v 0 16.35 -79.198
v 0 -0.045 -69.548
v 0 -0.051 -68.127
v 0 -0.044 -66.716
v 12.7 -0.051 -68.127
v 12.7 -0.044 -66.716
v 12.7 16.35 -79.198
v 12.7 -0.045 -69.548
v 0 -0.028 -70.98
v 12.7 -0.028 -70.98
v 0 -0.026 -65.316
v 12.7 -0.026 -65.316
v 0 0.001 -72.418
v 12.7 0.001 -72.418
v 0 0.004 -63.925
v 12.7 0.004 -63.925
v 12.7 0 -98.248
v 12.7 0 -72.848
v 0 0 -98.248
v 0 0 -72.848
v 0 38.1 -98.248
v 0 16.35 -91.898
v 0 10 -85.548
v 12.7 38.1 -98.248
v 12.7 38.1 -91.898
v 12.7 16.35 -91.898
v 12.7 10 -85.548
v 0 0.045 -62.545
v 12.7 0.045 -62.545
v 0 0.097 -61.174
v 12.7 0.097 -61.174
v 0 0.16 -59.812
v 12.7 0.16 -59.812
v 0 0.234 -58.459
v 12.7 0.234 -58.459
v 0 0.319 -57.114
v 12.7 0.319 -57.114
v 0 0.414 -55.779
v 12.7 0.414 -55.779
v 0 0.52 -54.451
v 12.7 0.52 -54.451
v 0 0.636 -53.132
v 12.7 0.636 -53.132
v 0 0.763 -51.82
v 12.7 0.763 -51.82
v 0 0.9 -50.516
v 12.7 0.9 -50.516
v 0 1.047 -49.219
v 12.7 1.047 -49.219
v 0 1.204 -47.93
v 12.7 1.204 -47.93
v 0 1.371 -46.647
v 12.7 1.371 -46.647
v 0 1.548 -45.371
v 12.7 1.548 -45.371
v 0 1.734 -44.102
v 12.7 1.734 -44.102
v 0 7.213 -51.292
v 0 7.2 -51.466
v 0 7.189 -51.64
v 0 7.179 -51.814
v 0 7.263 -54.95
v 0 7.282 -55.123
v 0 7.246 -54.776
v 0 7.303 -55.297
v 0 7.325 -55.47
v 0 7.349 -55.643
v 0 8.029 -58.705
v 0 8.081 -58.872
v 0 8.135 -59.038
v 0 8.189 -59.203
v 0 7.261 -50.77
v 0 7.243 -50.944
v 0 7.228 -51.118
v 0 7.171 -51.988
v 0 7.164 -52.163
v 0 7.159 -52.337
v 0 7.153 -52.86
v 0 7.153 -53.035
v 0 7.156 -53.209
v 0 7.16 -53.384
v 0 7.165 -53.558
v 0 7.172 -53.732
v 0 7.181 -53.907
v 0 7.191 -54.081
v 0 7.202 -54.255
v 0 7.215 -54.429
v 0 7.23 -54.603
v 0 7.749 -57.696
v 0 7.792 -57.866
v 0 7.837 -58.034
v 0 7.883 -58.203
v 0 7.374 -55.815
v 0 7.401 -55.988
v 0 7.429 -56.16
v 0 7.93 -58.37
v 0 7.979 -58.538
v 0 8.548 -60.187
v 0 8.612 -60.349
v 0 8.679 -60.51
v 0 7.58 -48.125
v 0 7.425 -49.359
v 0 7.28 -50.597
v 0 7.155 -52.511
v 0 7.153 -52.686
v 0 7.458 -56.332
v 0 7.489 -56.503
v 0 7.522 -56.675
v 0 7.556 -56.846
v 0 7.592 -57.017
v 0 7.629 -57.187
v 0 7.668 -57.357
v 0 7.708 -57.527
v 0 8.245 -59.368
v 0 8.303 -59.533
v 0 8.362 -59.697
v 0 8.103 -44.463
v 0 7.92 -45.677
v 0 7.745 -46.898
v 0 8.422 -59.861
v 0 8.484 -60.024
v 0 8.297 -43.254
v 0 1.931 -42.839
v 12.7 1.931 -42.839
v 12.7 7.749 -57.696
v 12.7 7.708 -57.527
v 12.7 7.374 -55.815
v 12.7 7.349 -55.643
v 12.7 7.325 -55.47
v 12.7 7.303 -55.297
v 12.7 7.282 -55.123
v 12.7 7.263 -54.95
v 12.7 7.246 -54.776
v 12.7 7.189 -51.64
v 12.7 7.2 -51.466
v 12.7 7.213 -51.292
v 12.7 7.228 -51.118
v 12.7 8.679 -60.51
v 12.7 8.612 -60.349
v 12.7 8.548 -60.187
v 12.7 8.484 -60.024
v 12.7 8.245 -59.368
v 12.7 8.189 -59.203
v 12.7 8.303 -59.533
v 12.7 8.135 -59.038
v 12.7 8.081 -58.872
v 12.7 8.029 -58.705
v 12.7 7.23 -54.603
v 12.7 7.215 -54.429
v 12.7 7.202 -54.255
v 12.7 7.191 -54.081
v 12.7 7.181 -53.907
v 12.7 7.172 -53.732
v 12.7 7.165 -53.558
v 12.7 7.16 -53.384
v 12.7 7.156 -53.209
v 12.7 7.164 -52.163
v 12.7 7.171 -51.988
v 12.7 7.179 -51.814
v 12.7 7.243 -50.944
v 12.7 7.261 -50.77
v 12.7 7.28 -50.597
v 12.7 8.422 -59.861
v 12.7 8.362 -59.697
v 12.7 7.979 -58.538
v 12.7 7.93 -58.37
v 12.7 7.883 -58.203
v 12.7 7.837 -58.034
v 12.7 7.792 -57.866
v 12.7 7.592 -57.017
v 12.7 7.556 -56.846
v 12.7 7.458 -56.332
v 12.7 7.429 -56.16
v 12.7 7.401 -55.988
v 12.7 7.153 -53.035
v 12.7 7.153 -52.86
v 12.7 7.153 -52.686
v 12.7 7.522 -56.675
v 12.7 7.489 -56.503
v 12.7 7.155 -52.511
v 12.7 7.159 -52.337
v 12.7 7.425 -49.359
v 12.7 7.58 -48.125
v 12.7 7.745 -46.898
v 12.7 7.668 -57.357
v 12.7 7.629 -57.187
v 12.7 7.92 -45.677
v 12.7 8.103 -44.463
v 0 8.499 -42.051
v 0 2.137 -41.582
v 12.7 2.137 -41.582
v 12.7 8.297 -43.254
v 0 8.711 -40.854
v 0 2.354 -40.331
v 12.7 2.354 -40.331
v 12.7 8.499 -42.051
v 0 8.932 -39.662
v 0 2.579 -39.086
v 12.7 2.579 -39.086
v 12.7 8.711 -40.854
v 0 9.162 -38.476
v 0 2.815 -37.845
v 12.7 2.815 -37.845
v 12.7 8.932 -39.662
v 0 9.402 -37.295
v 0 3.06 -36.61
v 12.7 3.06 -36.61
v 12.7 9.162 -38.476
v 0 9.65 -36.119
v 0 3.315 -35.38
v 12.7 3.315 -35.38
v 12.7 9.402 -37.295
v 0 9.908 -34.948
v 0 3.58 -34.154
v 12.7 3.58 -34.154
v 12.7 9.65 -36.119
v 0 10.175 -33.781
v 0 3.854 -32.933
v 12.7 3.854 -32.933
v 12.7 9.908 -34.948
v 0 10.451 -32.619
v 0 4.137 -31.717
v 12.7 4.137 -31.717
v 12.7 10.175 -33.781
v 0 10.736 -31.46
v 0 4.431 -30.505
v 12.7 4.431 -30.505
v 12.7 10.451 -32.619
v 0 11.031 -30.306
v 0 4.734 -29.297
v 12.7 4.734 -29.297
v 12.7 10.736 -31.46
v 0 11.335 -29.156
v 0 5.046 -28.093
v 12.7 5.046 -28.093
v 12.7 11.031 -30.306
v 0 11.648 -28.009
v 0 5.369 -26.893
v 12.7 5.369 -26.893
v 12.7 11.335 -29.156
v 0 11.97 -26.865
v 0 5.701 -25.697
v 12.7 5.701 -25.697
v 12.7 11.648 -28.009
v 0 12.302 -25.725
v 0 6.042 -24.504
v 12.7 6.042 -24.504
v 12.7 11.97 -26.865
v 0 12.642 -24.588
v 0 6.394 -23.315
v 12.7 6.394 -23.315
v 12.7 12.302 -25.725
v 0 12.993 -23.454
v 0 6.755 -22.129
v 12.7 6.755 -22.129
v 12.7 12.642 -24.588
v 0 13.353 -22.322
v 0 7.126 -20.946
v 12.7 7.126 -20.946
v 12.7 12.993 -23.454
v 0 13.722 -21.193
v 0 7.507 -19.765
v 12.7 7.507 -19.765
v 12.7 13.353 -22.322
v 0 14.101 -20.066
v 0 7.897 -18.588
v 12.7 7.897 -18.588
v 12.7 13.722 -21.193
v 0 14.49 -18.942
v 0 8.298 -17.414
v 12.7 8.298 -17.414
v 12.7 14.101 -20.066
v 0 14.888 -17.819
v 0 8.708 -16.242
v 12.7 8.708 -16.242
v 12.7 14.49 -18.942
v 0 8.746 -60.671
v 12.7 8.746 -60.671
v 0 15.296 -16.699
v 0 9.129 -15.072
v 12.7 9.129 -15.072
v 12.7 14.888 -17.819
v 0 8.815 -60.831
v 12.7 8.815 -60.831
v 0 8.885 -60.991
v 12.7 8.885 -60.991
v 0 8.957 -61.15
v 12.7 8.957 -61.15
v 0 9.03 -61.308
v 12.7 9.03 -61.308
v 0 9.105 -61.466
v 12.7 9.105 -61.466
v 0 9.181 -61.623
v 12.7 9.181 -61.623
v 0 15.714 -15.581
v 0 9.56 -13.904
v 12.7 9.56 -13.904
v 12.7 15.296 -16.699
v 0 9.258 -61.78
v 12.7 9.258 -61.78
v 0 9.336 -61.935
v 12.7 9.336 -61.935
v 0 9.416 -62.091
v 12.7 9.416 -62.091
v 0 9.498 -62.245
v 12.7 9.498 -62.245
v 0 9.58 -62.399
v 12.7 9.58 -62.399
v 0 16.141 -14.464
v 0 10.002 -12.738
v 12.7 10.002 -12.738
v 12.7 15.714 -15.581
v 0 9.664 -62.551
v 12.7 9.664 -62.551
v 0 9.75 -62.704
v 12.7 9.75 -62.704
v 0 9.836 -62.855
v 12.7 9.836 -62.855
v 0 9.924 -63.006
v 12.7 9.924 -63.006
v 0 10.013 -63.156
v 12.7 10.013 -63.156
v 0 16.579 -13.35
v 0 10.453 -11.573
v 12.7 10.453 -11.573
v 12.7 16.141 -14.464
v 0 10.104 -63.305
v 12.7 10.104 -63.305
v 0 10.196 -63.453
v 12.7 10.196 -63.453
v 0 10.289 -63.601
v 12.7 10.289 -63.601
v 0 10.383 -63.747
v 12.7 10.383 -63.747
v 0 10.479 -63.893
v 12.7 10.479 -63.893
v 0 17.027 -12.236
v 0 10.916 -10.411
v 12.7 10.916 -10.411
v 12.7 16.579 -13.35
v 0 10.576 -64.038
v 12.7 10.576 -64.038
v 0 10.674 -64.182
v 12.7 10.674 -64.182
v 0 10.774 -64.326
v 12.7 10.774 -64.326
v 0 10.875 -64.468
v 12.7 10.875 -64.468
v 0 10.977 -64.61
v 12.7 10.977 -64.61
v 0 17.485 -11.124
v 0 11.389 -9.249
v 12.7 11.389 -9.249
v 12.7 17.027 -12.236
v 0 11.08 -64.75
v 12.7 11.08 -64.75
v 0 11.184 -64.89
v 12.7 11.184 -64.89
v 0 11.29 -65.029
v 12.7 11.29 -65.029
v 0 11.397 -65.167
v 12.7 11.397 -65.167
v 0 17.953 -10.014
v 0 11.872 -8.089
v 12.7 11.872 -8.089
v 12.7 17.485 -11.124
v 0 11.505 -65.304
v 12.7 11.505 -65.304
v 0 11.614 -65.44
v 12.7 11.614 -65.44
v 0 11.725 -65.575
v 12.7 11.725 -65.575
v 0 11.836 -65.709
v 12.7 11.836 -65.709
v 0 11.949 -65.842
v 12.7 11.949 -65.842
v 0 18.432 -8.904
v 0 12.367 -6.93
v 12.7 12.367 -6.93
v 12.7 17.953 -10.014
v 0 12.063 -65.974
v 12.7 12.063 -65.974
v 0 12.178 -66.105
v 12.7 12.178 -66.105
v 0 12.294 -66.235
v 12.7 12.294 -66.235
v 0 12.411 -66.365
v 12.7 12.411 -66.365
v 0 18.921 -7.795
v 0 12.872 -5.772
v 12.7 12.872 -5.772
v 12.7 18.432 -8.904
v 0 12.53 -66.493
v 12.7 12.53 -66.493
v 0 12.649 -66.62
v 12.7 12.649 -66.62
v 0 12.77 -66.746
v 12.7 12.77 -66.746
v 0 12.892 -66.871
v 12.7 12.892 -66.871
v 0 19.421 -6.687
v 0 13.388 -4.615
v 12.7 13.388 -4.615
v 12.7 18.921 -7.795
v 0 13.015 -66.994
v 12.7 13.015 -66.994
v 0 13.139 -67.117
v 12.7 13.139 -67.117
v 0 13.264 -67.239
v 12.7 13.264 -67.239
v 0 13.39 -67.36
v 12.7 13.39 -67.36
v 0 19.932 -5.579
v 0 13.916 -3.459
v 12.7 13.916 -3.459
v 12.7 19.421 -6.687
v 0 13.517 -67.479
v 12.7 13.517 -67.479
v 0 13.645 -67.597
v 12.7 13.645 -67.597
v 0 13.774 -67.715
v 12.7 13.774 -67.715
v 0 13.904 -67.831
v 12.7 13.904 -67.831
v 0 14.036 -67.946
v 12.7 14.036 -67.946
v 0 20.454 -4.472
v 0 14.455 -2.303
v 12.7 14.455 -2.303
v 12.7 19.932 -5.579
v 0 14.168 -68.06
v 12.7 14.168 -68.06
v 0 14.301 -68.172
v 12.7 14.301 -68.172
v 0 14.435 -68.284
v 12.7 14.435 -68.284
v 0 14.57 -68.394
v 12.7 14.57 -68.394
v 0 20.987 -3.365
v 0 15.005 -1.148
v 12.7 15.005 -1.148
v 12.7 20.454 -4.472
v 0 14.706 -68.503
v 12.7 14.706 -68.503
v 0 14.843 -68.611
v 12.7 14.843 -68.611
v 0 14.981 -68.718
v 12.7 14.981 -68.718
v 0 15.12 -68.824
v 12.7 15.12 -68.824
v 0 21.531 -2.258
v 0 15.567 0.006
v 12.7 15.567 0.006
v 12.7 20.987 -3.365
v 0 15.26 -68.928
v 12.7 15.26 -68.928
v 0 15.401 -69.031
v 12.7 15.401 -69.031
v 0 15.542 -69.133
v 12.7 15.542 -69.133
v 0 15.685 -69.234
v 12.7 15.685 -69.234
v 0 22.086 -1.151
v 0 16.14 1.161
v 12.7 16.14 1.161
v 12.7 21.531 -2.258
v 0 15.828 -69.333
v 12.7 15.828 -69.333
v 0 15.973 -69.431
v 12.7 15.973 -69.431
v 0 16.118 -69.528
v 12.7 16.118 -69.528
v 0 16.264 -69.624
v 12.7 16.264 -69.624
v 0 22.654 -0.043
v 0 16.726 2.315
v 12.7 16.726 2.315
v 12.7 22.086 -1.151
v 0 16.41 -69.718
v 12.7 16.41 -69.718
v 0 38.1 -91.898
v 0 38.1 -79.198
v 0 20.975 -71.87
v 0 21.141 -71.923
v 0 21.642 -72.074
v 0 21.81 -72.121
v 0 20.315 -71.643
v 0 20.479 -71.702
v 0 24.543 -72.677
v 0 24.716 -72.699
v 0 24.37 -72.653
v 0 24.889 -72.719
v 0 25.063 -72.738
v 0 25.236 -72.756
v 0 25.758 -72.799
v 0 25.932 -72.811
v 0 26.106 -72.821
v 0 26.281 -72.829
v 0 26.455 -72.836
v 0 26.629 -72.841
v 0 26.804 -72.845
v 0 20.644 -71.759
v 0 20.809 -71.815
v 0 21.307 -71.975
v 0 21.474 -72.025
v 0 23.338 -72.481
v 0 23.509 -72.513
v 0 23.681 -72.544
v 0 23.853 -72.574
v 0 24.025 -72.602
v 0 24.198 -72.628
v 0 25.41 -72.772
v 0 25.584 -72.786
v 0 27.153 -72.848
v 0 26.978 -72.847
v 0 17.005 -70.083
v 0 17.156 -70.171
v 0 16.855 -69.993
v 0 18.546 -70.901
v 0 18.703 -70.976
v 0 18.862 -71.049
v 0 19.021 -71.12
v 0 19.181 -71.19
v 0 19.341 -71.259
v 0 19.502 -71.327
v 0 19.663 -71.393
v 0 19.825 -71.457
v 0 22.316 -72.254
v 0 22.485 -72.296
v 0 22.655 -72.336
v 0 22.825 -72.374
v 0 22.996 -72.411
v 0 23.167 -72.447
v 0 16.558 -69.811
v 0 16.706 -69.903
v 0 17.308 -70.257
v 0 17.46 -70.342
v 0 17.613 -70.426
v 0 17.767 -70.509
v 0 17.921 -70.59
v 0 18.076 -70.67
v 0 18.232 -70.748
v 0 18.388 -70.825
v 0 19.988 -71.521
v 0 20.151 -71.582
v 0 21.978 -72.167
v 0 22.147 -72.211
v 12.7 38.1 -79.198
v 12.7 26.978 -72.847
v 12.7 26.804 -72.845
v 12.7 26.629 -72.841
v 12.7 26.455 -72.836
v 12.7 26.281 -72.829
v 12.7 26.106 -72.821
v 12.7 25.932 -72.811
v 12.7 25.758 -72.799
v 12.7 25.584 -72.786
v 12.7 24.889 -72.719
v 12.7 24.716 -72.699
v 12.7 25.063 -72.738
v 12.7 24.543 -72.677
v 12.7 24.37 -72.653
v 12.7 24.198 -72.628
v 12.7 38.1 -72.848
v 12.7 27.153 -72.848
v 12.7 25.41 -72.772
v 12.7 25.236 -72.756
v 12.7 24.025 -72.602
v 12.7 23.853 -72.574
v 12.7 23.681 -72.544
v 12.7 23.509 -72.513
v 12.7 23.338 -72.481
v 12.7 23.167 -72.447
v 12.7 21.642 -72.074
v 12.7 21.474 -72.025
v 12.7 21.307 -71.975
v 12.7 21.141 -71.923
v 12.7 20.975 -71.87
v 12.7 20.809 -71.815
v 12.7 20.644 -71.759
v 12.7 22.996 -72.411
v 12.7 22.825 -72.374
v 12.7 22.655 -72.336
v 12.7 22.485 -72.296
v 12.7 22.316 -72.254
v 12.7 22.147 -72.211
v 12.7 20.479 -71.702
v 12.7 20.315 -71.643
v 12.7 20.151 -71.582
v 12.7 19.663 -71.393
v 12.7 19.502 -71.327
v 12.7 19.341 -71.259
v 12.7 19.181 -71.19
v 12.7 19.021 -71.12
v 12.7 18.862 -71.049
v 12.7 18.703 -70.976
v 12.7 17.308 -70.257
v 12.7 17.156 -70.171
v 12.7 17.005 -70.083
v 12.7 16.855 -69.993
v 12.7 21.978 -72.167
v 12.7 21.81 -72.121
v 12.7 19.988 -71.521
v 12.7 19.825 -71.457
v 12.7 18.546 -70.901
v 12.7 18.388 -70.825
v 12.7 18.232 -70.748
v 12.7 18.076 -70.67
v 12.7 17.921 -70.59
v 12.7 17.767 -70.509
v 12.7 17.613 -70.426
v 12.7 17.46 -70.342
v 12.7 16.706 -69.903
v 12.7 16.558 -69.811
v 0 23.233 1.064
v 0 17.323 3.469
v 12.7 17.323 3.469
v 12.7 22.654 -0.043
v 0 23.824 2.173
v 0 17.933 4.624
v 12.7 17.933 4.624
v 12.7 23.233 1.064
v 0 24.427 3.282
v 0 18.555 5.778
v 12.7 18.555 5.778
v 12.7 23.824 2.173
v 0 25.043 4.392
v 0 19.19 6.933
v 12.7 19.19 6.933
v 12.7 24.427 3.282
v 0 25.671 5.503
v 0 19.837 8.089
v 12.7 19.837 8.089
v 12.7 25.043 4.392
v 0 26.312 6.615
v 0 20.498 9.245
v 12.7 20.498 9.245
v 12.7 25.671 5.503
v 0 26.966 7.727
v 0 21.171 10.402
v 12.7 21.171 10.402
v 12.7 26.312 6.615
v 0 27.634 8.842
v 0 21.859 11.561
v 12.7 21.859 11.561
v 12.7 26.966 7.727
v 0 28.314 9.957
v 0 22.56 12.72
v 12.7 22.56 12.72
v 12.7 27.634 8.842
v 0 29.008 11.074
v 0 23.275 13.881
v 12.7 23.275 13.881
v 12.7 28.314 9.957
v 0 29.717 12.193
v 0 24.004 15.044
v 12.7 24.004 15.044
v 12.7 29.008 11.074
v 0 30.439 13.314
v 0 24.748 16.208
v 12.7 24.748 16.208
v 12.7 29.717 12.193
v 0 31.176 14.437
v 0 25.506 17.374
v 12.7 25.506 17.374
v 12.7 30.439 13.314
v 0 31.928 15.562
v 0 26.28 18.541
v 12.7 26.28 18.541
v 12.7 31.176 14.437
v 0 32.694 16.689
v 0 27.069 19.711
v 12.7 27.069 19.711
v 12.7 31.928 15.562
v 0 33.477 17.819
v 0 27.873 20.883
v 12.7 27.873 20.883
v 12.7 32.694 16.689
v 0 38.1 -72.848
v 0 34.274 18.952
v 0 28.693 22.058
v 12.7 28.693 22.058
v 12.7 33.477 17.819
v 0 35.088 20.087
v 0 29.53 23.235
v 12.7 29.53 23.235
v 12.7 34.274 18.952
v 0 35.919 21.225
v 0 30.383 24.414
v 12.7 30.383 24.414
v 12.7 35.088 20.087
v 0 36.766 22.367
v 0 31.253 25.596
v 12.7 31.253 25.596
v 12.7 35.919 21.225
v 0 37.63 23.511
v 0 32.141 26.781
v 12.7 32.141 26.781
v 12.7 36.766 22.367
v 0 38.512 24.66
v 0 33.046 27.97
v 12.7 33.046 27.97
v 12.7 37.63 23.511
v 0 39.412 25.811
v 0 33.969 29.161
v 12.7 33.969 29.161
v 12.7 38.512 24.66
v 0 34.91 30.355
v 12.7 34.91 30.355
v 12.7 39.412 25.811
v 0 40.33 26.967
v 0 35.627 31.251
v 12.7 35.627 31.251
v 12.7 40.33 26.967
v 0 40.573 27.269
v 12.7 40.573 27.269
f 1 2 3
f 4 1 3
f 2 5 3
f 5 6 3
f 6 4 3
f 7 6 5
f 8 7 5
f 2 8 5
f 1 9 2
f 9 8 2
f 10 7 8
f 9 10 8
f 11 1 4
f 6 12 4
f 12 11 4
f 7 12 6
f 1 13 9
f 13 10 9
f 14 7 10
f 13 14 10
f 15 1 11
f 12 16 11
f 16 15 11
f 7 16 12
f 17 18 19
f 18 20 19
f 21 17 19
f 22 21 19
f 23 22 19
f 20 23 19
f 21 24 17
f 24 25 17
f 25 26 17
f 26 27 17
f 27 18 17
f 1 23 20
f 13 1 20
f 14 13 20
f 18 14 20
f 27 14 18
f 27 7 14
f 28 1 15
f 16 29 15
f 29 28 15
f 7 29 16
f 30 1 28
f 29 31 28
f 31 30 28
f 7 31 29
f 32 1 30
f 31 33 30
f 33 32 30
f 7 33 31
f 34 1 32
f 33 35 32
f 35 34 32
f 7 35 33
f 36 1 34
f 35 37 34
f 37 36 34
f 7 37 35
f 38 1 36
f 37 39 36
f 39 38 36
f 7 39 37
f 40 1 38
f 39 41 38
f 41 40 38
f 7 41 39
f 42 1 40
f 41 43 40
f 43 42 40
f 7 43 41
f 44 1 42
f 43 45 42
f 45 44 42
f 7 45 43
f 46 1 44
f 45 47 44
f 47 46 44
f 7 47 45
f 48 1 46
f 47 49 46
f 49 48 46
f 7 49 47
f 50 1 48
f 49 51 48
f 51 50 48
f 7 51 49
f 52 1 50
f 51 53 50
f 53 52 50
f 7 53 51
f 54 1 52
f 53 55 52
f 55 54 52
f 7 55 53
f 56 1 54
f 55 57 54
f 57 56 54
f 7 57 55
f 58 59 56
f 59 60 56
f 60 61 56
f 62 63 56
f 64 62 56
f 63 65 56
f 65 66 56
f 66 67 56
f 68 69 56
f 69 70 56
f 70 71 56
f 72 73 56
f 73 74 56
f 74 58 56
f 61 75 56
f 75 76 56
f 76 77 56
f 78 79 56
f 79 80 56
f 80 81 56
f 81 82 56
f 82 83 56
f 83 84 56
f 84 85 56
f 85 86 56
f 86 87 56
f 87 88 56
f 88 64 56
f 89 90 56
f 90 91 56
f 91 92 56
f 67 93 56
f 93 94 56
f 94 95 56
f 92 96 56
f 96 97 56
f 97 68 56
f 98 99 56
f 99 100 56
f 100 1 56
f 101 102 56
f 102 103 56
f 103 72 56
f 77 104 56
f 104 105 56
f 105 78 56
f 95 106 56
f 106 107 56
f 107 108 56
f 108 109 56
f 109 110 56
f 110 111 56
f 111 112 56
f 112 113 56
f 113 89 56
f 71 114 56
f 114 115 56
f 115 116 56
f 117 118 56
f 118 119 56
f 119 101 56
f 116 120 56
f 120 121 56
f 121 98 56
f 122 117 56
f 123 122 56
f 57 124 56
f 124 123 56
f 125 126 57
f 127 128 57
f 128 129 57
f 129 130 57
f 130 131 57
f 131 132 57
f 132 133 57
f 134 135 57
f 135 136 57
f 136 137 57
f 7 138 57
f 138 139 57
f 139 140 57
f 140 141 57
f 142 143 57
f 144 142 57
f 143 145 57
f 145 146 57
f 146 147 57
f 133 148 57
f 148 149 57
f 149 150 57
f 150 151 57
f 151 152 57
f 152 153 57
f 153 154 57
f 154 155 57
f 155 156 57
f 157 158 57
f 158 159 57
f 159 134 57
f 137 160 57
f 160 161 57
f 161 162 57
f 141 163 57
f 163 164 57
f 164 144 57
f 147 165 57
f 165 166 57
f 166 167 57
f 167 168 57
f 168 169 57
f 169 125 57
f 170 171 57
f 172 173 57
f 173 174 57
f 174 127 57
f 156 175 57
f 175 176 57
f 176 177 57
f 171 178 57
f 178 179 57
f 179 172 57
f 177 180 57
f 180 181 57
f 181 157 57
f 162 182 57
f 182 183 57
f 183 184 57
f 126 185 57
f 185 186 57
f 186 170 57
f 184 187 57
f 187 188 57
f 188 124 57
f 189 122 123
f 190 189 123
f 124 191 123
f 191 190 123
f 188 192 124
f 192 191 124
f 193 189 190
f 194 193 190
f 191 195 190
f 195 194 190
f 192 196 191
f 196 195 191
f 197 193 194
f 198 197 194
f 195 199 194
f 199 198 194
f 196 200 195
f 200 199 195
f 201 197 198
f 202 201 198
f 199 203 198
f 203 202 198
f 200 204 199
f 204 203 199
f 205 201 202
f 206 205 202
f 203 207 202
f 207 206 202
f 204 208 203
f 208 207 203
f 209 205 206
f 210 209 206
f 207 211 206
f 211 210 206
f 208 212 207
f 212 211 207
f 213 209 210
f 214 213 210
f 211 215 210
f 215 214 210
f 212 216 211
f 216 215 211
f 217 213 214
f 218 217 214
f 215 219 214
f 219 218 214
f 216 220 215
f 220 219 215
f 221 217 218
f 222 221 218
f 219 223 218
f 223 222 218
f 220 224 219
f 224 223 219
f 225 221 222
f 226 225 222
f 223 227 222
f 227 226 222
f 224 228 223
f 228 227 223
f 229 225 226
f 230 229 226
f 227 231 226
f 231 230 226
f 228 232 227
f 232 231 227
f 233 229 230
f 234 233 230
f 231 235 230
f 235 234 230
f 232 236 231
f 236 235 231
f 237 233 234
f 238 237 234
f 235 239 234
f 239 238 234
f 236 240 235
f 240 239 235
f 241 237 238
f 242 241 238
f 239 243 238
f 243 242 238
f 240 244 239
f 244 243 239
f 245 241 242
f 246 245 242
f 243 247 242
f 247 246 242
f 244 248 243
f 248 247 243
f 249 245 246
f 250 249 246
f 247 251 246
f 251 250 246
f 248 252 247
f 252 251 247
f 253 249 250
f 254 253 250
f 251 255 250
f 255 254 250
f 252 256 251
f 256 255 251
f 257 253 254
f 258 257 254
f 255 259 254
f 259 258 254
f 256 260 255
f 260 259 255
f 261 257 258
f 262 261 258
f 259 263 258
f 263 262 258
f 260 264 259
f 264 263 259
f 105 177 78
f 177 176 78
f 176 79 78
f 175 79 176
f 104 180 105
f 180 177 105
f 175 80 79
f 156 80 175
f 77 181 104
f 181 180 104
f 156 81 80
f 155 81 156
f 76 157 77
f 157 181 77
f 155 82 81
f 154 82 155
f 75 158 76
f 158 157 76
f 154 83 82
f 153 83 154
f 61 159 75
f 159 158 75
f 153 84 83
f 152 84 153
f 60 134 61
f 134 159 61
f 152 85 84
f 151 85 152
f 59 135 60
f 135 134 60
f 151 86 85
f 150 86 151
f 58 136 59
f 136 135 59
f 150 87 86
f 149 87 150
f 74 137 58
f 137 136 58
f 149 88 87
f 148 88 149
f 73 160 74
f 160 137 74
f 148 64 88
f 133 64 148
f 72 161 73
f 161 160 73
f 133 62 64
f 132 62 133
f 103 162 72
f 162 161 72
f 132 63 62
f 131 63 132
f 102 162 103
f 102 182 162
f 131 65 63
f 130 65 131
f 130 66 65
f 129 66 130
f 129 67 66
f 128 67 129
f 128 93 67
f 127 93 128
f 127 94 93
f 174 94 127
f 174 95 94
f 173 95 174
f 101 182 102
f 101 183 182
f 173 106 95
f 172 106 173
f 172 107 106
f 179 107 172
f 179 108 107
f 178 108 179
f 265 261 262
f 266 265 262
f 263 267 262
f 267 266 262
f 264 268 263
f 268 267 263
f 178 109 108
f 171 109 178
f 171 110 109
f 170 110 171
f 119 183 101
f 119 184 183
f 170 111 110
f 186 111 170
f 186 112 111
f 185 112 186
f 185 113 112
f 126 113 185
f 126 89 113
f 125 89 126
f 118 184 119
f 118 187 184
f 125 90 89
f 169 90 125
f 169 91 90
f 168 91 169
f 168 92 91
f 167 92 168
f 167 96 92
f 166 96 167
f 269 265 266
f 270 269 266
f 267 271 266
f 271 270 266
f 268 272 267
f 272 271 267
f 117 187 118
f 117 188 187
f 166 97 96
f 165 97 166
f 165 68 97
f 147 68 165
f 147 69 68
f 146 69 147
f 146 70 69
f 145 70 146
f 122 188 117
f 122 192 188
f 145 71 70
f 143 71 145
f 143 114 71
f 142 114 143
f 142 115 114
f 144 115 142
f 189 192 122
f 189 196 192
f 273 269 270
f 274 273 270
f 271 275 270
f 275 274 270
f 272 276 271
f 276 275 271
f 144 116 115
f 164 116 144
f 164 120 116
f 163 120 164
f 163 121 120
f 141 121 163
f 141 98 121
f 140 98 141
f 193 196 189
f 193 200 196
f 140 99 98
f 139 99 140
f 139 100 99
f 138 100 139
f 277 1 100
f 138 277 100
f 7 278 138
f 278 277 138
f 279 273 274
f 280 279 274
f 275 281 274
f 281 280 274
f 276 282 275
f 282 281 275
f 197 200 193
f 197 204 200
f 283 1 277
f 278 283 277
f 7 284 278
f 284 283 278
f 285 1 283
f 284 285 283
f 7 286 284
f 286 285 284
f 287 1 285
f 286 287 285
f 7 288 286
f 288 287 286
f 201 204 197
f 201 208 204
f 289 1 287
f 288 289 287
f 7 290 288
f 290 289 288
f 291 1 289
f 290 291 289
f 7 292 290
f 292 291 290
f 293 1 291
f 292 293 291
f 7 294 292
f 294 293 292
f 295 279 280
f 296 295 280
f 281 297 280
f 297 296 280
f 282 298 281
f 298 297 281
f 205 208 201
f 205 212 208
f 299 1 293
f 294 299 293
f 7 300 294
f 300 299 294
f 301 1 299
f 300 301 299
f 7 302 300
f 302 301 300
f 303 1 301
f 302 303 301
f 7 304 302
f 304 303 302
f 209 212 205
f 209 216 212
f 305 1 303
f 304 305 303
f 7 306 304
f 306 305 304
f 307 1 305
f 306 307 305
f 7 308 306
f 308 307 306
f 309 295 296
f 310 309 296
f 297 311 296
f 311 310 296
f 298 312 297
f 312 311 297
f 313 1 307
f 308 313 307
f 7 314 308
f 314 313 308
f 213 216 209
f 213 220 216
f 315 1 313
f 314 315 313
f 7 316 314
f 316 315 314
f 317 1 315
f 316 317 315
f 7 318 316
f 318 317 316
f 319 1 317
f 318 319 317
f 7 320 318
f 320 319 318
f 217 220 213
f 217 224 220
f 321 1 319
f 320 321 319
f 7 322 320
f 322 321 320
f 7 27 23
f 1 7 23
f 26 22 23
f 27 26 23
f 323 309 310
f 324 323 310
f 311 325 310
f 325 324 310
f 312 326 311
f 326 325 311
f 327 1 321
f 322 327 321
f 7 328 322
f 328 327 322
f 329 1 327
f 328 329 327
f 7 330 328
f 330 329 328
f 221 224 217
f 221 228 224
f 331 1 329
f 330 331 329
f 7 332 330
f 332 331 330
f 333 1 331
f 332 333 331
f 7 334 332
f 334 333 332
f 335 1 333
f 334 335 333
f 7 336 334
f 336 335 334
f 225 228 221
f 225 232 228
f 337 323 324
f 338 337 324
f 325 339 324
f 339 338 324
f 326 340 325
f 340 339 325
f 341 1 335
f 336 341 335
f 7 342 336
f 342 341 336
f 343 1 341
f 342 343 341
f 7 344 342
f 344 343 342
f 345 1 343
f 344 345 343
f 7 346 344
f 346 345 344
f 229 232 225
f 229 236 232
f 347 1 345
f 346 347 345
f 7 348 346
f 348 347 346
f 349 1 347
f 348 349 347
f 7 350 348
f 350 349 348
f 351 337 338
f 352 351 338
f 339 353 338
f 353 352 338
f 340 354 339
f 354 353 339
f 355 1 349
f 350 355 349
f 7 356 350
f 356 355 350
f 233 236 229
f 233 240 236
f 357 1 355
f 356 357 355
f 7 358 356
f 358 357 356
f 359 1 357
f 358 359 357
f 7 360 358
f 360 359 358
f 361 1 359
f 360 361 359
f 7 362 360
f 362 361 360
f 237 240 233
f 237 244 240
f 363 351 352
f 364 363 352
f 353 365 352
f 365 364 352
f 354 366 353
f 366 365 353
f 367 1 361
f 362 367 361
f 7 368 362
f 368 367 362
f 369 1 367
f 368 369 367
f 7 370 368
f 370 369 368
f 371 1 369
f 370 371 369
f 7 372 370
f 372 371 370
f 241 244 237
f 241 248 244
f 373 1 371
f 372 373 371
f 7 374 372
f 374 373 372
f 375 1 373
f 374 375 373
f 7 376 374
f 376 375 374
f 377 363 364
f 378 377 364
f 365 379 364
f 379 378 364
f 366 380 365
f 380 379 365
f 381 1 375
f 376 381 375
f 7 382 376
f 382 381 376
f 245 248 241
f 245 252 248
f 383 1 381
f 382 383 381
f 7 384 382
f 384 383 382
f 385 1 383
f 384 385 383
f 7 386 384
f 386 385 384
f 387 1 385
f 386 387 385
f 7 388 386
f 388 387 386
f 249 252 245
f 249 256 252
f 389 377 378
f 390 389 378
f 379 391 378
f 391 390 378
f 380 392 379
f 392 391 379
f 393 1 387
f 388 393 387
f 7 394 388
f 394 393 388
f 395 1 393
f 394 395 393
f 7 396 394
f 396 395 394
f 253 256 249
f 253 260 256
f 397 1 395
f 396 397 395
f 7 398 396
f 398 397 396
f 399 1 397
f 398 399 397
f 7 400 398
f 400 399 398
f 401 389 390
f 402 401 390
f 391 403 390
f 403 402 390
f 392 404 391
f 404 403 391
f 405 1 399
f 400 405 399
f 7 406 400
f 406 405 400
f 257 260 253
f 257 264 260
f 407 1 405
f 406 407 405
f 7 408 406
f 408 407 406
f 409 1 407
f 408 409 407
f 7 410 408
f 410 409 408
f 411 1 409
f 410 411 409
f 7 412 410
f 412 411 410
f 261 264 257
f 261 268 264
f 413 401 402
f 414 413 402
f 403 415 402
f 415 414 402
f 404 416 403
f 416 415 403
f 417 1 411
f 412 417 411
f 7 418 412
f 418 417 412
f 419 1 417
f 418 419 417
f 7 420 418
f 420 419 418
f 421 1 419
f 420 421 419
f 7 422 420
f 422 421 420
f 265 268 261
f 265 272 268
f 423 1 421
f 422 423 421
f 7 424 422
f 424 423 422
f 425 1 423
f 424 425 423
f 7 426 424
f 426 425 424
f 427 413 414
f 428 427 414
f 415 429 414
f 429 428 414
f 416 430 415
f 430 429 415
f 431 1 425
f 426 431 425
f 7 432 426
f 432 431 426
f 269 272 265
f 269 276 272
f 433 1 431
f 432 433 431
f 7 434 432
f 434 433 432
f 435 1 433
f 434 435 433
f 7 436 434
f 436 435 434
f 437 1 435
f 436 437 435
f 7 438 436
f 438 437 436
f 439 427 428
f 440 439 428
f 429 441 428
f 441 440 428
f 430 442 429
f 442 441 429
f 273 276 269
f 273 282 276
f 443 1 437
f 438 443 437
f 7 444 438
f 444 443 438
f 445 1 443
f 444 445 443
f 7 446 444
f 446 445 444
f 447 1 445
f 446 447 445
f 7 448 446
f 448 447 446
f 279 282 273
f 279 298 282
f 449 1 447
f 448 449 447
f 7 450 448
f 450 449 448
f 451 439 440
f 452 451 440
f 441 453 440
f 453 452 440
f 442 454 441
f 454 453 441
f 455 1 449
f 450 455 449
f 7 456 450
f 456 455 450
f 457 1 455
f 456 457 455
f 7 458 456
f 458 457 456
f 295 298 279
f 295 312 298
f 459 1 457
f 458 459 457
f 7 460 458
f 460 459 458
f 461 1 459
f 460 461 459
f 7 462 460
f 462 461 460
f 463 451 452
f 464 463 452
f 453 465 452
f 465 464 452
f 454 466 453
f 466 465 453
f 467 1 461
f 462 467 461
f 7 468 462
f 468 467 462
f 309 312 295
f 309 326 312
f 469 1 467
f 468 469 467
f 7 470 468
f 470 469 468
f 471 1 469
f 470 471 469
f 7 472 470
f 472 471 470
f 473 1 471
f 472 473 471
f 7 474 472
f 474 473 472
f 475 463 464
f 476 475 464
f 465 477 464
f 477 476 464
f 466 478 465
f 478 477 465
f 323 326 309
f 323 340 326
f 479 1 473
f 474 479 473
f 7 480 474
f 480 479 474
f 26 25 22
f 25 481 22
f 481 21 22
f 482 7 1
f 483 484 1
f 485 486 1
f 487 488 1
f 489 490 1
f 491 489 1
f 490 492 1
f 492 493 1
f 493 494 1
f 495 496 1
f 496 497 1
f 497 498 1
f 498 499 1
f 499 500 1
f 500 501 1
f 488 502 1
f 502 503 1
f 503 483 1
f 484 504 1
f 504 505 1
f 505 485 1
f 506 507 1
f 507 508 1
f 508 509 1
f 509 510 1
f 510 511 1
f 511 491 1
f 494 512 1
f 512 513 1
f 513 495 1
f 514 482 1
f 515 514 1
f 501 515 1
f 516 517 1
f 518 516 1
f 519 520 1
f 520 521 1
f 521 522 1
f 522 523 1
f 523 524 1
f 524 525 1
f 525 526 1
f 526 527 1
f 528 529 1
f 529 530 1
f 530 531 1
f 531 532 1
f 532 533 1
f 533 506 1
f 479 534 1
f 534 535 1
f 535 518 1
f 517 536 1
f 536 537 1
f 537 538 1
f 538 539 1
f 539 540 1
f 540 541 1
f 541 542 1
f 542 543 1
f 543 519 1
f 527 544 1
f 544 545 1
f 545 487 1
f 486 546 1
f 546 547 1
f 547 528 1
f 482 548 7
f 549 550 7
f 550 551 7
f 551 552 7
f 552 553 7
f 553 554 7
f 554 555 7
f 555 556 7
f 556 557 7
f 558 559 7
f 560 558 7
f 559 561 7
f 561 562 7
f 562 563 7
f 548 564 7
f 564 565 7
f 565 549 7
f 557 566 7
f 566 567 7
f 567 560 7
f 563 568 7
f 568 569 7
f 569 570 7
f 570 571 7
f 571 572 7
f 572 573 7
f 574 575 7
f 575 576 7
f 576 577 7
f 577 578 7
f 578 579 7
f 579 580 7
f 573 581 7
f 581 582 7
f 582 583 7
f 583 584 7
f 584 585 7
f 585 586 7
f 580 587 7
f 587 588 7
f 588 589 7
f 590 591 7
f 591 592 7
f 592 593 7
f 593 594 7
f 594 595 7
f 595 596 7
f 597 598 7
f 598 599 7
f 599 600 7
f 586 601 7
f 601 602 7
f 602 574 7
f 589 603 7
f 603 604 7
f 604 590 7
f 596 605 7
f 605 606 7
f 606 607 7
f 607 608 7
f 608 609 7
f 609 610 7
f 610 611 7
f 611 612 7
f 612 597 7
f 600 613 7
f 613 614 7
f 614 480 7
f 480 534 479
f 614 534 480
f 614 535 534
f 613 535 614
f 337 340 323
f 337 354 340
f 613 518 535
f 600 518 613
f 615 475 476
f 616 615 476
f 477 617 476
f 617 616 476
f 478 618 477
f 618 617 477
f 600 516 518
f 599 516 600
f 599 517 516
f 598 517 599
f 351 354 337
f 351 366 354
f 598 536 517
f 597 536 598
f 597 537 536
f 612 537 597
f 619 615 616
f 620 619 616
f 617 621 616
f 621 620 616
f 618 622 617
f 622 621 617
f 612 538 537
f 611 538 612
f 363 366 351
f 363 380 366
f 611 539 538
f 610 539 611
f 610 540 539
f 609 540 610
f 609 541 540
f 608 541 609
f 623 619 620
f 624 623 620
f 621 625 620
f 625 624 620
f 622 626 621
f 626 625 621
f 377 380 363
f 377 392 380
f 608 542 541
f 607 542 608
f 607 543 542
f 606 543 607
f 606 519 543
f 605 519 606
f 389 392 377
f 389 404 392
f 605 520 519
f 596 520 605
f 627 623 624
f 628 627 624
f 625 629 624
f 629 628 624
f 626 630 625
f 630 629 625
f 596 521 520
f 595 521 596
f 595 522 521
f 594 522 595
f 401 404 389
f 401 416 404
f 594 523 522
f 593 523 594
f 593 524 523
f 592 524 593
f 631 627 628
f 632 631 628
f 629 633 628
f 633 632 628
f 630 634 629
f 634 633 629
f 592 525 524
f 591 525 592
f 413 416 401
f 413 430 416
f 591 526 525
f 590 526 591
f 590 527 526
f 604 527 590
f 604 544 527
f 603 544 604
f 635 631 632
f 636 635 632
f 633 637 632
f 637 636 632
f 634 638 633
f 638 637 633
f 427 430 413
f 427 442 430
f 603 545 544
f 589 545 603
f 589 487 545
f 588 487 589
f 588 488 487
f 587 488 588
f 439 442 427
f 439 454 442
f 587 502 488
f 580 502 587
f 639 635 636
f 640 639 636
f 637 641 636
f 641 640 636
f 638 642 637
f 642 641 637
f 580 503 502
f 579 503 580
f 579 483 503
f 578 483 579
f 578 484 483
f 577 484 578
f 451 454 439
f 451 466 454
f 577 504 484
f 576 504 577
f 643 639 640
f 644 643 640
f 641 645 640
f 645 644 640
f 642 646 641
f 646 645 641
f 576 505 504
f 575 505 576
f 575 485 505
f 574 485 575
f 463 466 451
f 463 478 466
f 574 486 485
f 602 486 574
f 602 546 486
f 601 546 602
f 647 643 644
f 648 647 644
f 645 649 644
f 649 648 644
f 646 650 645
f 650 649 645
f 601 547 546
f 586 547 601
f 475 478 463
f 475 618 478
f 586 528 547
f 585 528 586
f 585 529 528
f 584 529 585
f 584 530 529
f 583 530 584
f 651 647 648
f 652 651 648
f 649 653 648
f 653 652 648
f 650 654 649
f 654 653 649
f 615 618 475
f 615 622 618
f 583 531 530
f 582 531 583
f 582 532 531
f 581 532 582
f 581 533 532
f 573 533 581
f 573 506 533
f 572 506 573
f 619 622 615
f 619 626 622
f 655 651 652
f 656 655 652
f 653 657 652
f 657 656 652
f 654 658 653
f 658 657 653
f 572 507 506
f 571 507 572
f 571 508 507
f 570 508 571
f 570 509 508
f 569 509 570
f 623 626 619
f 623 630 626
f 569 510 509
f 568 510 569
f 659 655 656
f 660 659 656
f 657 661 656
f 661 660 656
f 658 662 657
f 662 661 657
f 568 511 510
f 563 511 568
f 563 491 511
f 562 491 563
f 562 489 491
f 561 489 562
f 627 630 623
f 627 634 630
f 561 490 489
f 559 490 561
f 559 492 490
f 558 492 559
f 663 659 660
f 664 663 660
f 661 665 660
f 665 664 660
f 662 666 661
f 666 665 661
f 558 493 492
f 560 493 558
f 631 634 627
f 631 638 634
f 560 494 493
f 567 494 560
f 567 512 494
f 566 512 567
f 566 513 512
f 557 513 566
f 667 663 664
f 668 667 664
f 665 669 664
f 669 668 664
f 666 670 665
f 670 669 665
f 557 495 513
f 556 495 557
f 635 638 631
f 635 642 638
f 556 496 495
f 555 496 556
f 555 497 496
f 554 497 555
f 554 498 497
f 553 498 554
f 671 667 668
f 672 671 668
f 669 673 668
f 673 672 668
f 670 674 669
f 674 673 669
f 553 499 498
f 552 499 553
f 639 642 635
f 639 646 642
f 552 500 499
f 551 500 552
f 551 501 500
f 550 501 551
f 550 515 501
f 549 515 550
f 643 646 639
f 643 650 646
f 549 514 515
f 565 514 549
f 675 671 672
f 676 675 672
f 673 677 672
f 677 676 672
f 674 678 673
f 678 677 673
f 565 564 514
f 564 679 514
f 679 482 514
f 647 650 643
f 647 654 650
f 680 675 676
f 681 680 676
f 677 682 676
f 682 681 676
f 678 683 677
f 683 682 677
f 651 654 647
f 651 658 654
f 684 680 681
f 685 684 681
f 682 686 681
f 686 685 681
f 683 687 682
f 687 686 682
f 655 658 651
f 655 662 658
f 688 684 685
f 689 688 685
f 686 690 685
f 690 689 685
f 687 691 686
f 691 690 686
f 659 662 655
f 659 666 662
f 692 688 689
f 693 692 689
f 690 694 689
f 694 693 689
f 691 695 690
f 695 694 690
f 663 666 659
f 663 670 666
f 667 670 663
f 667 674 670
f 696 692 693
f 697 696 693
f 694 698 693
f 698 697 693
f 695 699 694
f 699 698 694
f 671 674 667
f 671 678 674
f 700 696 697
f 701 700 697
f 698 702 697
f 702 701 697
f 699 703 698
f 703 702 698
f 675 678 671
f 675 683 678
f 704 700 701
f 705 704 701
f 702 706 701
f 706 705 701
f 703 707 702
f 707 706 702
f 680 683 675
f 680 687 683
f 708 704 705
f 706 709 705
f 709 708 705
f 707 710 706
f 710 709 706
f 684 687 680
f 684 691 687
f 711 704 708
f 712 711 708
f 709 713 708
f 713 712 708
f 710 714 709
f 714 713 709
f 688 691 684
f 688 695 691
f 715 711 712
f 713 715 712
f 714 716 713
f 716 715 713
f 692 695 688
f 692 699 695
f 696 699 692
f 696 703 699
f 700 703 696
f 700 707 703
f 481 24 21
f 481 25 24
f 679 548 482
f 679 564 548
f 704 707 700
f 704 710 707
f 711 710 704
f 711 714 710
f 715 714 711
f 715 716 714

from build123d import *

# Parameters (mm, degrees)
BOSS_EXTRUDE1_DEPTH = 12.7
EXTRUDE_THIN1_START = -6.35
EXTRUDE_THIN1_DEPTH = 12.7
BOSS_EXTRUDE2_DEPTH = 12.7
FILLET2_R           = 20
CHAMFER1_SIZE       = 10


# Read off the part's stored shape, not the designer's step: Extrude-Thin1
with BuildPart() as part:
    # Sketch1 → Boss-Extrude1 (new body)
    with BuildSketch(Plane(origin=(0, 0, 0), x_dir=(0, 0, -1), z_dir=(1, 0, 0))):
        Polygon((72.847962895, 3.175), (72.847962895, 0), (98.247962895, 0), (98.247962895, 38.1), (91.897962895, 38.1), (91.897962895, 6.35), (79.197962895, 6.35), (79.197962895, 38.1), (72.847962895, 38.1), align=None)
    extrude(amount=BOSS_EXTRUDE1_DEPTH)



with BuildPart() as body_2:
    # Extrude-Thin1 outline → Extrude-Thin1 (new body)
    with BuildSketch(Plane(origin=(6.35, 0, 0), x_dir=(0, 0, -1), z_dir=(1, 0, 0)).offset(EXTRUDE_THIN1_START)):
        with BuildLine():
            Line((72.417611424, 0.000950446), (72.262248261, 6.349049554))
            add(Edge.make_bspline(
                [(72.262248261, 6.349049554), (63.021883212, 6.122901173), (54.028914036, 6.667445615), (36.522694485, 9.291097632), (28.009187017, 11.370086401), (11.442378767, 17.064926737), (3.388803369, 20.680920683), (-12.273002956, 29.461644656), (-19.881272632, 34.626626552), (-27.26926203, 40.573319228)],
                knots=[0, 0, 0, 0, 0.25, 0.25, 0.5, 0.5, 0.75, 0.75, 1, 1, 1, 1], degree=3))
            Line((-27.26926203, 40.573319228), (-31.250878284, 35.626680772))
            add(Edge.make_bspline(
                [(72.417611424, 0.000950446), (62.82712633, -0.233766762), (53.463624565, 0.331247938), (35.205660639, 3.067563666), (26.31145557, 5.238983498), (9.011597154, 11.185809829), (0.606218421, 14.961073948), (-15.70112511, 24.103715563), (-23.603051159, 29.470841193), (-31.250878284, 35.626680772)],
                knots=[0, 0, 0, 0, 0.25, 0.25, 0.5, 0.5, 0.75, 0.75, 1, 1, 1, 1], degree=3))
        make_face()
    extrude(amount=EXTRUDE_THIN1_DEPTH)


with BuildPart() as part_1:
    add(part.part)

    add(body_2.part)  # Boss-Extrude2 merges body 2
    # Sketch3 → Boss-Extrude2 (add)
    with BuildSketch(Plane(origin=(12.7, 0, 0), x_dir=(0, 0, -1), z_dir=(1, 0, 0))):
        Polygon((72.262248261, 6.349049554), (72.847962895, 6.349049554), (72.847962895, 0), (72.417611424, 0.000950446), align=None)
    extrude(amount=-BOSS_EXTRUDE2_DEPTH)

    # Fillet2
    fillet2_edges = [part_1.edges().sort_by_distance(p)[0] for p in [
        (6.35, 6.349049554, -72.847962895),
    ]]
    fillet(fillet2_edges, radius=FILLET2_R)

    # Chamfer1
    # the kernel refuses this chamfer: 10 mm, written as the material it adds along each edge
    with BuildSketch(Plane(origin=(0, 6.35, -91.897962895), x_dir=(0, -0.027495876610586664, 0.9996219169112968), z_dir=(1, 0, 0)), Plane(origin=(0, 6.35, -79.197962895), x_dir=(0, 0.9996219169112968, 0.027495876610586317), z_dir=(1, 0, 0))) as chamfer1_piece_1:
        Polygon((CHAMFER1_SIZE * 0.999621916911, -CHAMFER1_SIZE * 0.0274958766106), (-CHAMFER1_SIZE * 0.0274958766106, -CHAMFER1_SIZE * 0.999621916911), (0, 0), align=None)
    extrude(amount=12.7)


solid = part_1.part
